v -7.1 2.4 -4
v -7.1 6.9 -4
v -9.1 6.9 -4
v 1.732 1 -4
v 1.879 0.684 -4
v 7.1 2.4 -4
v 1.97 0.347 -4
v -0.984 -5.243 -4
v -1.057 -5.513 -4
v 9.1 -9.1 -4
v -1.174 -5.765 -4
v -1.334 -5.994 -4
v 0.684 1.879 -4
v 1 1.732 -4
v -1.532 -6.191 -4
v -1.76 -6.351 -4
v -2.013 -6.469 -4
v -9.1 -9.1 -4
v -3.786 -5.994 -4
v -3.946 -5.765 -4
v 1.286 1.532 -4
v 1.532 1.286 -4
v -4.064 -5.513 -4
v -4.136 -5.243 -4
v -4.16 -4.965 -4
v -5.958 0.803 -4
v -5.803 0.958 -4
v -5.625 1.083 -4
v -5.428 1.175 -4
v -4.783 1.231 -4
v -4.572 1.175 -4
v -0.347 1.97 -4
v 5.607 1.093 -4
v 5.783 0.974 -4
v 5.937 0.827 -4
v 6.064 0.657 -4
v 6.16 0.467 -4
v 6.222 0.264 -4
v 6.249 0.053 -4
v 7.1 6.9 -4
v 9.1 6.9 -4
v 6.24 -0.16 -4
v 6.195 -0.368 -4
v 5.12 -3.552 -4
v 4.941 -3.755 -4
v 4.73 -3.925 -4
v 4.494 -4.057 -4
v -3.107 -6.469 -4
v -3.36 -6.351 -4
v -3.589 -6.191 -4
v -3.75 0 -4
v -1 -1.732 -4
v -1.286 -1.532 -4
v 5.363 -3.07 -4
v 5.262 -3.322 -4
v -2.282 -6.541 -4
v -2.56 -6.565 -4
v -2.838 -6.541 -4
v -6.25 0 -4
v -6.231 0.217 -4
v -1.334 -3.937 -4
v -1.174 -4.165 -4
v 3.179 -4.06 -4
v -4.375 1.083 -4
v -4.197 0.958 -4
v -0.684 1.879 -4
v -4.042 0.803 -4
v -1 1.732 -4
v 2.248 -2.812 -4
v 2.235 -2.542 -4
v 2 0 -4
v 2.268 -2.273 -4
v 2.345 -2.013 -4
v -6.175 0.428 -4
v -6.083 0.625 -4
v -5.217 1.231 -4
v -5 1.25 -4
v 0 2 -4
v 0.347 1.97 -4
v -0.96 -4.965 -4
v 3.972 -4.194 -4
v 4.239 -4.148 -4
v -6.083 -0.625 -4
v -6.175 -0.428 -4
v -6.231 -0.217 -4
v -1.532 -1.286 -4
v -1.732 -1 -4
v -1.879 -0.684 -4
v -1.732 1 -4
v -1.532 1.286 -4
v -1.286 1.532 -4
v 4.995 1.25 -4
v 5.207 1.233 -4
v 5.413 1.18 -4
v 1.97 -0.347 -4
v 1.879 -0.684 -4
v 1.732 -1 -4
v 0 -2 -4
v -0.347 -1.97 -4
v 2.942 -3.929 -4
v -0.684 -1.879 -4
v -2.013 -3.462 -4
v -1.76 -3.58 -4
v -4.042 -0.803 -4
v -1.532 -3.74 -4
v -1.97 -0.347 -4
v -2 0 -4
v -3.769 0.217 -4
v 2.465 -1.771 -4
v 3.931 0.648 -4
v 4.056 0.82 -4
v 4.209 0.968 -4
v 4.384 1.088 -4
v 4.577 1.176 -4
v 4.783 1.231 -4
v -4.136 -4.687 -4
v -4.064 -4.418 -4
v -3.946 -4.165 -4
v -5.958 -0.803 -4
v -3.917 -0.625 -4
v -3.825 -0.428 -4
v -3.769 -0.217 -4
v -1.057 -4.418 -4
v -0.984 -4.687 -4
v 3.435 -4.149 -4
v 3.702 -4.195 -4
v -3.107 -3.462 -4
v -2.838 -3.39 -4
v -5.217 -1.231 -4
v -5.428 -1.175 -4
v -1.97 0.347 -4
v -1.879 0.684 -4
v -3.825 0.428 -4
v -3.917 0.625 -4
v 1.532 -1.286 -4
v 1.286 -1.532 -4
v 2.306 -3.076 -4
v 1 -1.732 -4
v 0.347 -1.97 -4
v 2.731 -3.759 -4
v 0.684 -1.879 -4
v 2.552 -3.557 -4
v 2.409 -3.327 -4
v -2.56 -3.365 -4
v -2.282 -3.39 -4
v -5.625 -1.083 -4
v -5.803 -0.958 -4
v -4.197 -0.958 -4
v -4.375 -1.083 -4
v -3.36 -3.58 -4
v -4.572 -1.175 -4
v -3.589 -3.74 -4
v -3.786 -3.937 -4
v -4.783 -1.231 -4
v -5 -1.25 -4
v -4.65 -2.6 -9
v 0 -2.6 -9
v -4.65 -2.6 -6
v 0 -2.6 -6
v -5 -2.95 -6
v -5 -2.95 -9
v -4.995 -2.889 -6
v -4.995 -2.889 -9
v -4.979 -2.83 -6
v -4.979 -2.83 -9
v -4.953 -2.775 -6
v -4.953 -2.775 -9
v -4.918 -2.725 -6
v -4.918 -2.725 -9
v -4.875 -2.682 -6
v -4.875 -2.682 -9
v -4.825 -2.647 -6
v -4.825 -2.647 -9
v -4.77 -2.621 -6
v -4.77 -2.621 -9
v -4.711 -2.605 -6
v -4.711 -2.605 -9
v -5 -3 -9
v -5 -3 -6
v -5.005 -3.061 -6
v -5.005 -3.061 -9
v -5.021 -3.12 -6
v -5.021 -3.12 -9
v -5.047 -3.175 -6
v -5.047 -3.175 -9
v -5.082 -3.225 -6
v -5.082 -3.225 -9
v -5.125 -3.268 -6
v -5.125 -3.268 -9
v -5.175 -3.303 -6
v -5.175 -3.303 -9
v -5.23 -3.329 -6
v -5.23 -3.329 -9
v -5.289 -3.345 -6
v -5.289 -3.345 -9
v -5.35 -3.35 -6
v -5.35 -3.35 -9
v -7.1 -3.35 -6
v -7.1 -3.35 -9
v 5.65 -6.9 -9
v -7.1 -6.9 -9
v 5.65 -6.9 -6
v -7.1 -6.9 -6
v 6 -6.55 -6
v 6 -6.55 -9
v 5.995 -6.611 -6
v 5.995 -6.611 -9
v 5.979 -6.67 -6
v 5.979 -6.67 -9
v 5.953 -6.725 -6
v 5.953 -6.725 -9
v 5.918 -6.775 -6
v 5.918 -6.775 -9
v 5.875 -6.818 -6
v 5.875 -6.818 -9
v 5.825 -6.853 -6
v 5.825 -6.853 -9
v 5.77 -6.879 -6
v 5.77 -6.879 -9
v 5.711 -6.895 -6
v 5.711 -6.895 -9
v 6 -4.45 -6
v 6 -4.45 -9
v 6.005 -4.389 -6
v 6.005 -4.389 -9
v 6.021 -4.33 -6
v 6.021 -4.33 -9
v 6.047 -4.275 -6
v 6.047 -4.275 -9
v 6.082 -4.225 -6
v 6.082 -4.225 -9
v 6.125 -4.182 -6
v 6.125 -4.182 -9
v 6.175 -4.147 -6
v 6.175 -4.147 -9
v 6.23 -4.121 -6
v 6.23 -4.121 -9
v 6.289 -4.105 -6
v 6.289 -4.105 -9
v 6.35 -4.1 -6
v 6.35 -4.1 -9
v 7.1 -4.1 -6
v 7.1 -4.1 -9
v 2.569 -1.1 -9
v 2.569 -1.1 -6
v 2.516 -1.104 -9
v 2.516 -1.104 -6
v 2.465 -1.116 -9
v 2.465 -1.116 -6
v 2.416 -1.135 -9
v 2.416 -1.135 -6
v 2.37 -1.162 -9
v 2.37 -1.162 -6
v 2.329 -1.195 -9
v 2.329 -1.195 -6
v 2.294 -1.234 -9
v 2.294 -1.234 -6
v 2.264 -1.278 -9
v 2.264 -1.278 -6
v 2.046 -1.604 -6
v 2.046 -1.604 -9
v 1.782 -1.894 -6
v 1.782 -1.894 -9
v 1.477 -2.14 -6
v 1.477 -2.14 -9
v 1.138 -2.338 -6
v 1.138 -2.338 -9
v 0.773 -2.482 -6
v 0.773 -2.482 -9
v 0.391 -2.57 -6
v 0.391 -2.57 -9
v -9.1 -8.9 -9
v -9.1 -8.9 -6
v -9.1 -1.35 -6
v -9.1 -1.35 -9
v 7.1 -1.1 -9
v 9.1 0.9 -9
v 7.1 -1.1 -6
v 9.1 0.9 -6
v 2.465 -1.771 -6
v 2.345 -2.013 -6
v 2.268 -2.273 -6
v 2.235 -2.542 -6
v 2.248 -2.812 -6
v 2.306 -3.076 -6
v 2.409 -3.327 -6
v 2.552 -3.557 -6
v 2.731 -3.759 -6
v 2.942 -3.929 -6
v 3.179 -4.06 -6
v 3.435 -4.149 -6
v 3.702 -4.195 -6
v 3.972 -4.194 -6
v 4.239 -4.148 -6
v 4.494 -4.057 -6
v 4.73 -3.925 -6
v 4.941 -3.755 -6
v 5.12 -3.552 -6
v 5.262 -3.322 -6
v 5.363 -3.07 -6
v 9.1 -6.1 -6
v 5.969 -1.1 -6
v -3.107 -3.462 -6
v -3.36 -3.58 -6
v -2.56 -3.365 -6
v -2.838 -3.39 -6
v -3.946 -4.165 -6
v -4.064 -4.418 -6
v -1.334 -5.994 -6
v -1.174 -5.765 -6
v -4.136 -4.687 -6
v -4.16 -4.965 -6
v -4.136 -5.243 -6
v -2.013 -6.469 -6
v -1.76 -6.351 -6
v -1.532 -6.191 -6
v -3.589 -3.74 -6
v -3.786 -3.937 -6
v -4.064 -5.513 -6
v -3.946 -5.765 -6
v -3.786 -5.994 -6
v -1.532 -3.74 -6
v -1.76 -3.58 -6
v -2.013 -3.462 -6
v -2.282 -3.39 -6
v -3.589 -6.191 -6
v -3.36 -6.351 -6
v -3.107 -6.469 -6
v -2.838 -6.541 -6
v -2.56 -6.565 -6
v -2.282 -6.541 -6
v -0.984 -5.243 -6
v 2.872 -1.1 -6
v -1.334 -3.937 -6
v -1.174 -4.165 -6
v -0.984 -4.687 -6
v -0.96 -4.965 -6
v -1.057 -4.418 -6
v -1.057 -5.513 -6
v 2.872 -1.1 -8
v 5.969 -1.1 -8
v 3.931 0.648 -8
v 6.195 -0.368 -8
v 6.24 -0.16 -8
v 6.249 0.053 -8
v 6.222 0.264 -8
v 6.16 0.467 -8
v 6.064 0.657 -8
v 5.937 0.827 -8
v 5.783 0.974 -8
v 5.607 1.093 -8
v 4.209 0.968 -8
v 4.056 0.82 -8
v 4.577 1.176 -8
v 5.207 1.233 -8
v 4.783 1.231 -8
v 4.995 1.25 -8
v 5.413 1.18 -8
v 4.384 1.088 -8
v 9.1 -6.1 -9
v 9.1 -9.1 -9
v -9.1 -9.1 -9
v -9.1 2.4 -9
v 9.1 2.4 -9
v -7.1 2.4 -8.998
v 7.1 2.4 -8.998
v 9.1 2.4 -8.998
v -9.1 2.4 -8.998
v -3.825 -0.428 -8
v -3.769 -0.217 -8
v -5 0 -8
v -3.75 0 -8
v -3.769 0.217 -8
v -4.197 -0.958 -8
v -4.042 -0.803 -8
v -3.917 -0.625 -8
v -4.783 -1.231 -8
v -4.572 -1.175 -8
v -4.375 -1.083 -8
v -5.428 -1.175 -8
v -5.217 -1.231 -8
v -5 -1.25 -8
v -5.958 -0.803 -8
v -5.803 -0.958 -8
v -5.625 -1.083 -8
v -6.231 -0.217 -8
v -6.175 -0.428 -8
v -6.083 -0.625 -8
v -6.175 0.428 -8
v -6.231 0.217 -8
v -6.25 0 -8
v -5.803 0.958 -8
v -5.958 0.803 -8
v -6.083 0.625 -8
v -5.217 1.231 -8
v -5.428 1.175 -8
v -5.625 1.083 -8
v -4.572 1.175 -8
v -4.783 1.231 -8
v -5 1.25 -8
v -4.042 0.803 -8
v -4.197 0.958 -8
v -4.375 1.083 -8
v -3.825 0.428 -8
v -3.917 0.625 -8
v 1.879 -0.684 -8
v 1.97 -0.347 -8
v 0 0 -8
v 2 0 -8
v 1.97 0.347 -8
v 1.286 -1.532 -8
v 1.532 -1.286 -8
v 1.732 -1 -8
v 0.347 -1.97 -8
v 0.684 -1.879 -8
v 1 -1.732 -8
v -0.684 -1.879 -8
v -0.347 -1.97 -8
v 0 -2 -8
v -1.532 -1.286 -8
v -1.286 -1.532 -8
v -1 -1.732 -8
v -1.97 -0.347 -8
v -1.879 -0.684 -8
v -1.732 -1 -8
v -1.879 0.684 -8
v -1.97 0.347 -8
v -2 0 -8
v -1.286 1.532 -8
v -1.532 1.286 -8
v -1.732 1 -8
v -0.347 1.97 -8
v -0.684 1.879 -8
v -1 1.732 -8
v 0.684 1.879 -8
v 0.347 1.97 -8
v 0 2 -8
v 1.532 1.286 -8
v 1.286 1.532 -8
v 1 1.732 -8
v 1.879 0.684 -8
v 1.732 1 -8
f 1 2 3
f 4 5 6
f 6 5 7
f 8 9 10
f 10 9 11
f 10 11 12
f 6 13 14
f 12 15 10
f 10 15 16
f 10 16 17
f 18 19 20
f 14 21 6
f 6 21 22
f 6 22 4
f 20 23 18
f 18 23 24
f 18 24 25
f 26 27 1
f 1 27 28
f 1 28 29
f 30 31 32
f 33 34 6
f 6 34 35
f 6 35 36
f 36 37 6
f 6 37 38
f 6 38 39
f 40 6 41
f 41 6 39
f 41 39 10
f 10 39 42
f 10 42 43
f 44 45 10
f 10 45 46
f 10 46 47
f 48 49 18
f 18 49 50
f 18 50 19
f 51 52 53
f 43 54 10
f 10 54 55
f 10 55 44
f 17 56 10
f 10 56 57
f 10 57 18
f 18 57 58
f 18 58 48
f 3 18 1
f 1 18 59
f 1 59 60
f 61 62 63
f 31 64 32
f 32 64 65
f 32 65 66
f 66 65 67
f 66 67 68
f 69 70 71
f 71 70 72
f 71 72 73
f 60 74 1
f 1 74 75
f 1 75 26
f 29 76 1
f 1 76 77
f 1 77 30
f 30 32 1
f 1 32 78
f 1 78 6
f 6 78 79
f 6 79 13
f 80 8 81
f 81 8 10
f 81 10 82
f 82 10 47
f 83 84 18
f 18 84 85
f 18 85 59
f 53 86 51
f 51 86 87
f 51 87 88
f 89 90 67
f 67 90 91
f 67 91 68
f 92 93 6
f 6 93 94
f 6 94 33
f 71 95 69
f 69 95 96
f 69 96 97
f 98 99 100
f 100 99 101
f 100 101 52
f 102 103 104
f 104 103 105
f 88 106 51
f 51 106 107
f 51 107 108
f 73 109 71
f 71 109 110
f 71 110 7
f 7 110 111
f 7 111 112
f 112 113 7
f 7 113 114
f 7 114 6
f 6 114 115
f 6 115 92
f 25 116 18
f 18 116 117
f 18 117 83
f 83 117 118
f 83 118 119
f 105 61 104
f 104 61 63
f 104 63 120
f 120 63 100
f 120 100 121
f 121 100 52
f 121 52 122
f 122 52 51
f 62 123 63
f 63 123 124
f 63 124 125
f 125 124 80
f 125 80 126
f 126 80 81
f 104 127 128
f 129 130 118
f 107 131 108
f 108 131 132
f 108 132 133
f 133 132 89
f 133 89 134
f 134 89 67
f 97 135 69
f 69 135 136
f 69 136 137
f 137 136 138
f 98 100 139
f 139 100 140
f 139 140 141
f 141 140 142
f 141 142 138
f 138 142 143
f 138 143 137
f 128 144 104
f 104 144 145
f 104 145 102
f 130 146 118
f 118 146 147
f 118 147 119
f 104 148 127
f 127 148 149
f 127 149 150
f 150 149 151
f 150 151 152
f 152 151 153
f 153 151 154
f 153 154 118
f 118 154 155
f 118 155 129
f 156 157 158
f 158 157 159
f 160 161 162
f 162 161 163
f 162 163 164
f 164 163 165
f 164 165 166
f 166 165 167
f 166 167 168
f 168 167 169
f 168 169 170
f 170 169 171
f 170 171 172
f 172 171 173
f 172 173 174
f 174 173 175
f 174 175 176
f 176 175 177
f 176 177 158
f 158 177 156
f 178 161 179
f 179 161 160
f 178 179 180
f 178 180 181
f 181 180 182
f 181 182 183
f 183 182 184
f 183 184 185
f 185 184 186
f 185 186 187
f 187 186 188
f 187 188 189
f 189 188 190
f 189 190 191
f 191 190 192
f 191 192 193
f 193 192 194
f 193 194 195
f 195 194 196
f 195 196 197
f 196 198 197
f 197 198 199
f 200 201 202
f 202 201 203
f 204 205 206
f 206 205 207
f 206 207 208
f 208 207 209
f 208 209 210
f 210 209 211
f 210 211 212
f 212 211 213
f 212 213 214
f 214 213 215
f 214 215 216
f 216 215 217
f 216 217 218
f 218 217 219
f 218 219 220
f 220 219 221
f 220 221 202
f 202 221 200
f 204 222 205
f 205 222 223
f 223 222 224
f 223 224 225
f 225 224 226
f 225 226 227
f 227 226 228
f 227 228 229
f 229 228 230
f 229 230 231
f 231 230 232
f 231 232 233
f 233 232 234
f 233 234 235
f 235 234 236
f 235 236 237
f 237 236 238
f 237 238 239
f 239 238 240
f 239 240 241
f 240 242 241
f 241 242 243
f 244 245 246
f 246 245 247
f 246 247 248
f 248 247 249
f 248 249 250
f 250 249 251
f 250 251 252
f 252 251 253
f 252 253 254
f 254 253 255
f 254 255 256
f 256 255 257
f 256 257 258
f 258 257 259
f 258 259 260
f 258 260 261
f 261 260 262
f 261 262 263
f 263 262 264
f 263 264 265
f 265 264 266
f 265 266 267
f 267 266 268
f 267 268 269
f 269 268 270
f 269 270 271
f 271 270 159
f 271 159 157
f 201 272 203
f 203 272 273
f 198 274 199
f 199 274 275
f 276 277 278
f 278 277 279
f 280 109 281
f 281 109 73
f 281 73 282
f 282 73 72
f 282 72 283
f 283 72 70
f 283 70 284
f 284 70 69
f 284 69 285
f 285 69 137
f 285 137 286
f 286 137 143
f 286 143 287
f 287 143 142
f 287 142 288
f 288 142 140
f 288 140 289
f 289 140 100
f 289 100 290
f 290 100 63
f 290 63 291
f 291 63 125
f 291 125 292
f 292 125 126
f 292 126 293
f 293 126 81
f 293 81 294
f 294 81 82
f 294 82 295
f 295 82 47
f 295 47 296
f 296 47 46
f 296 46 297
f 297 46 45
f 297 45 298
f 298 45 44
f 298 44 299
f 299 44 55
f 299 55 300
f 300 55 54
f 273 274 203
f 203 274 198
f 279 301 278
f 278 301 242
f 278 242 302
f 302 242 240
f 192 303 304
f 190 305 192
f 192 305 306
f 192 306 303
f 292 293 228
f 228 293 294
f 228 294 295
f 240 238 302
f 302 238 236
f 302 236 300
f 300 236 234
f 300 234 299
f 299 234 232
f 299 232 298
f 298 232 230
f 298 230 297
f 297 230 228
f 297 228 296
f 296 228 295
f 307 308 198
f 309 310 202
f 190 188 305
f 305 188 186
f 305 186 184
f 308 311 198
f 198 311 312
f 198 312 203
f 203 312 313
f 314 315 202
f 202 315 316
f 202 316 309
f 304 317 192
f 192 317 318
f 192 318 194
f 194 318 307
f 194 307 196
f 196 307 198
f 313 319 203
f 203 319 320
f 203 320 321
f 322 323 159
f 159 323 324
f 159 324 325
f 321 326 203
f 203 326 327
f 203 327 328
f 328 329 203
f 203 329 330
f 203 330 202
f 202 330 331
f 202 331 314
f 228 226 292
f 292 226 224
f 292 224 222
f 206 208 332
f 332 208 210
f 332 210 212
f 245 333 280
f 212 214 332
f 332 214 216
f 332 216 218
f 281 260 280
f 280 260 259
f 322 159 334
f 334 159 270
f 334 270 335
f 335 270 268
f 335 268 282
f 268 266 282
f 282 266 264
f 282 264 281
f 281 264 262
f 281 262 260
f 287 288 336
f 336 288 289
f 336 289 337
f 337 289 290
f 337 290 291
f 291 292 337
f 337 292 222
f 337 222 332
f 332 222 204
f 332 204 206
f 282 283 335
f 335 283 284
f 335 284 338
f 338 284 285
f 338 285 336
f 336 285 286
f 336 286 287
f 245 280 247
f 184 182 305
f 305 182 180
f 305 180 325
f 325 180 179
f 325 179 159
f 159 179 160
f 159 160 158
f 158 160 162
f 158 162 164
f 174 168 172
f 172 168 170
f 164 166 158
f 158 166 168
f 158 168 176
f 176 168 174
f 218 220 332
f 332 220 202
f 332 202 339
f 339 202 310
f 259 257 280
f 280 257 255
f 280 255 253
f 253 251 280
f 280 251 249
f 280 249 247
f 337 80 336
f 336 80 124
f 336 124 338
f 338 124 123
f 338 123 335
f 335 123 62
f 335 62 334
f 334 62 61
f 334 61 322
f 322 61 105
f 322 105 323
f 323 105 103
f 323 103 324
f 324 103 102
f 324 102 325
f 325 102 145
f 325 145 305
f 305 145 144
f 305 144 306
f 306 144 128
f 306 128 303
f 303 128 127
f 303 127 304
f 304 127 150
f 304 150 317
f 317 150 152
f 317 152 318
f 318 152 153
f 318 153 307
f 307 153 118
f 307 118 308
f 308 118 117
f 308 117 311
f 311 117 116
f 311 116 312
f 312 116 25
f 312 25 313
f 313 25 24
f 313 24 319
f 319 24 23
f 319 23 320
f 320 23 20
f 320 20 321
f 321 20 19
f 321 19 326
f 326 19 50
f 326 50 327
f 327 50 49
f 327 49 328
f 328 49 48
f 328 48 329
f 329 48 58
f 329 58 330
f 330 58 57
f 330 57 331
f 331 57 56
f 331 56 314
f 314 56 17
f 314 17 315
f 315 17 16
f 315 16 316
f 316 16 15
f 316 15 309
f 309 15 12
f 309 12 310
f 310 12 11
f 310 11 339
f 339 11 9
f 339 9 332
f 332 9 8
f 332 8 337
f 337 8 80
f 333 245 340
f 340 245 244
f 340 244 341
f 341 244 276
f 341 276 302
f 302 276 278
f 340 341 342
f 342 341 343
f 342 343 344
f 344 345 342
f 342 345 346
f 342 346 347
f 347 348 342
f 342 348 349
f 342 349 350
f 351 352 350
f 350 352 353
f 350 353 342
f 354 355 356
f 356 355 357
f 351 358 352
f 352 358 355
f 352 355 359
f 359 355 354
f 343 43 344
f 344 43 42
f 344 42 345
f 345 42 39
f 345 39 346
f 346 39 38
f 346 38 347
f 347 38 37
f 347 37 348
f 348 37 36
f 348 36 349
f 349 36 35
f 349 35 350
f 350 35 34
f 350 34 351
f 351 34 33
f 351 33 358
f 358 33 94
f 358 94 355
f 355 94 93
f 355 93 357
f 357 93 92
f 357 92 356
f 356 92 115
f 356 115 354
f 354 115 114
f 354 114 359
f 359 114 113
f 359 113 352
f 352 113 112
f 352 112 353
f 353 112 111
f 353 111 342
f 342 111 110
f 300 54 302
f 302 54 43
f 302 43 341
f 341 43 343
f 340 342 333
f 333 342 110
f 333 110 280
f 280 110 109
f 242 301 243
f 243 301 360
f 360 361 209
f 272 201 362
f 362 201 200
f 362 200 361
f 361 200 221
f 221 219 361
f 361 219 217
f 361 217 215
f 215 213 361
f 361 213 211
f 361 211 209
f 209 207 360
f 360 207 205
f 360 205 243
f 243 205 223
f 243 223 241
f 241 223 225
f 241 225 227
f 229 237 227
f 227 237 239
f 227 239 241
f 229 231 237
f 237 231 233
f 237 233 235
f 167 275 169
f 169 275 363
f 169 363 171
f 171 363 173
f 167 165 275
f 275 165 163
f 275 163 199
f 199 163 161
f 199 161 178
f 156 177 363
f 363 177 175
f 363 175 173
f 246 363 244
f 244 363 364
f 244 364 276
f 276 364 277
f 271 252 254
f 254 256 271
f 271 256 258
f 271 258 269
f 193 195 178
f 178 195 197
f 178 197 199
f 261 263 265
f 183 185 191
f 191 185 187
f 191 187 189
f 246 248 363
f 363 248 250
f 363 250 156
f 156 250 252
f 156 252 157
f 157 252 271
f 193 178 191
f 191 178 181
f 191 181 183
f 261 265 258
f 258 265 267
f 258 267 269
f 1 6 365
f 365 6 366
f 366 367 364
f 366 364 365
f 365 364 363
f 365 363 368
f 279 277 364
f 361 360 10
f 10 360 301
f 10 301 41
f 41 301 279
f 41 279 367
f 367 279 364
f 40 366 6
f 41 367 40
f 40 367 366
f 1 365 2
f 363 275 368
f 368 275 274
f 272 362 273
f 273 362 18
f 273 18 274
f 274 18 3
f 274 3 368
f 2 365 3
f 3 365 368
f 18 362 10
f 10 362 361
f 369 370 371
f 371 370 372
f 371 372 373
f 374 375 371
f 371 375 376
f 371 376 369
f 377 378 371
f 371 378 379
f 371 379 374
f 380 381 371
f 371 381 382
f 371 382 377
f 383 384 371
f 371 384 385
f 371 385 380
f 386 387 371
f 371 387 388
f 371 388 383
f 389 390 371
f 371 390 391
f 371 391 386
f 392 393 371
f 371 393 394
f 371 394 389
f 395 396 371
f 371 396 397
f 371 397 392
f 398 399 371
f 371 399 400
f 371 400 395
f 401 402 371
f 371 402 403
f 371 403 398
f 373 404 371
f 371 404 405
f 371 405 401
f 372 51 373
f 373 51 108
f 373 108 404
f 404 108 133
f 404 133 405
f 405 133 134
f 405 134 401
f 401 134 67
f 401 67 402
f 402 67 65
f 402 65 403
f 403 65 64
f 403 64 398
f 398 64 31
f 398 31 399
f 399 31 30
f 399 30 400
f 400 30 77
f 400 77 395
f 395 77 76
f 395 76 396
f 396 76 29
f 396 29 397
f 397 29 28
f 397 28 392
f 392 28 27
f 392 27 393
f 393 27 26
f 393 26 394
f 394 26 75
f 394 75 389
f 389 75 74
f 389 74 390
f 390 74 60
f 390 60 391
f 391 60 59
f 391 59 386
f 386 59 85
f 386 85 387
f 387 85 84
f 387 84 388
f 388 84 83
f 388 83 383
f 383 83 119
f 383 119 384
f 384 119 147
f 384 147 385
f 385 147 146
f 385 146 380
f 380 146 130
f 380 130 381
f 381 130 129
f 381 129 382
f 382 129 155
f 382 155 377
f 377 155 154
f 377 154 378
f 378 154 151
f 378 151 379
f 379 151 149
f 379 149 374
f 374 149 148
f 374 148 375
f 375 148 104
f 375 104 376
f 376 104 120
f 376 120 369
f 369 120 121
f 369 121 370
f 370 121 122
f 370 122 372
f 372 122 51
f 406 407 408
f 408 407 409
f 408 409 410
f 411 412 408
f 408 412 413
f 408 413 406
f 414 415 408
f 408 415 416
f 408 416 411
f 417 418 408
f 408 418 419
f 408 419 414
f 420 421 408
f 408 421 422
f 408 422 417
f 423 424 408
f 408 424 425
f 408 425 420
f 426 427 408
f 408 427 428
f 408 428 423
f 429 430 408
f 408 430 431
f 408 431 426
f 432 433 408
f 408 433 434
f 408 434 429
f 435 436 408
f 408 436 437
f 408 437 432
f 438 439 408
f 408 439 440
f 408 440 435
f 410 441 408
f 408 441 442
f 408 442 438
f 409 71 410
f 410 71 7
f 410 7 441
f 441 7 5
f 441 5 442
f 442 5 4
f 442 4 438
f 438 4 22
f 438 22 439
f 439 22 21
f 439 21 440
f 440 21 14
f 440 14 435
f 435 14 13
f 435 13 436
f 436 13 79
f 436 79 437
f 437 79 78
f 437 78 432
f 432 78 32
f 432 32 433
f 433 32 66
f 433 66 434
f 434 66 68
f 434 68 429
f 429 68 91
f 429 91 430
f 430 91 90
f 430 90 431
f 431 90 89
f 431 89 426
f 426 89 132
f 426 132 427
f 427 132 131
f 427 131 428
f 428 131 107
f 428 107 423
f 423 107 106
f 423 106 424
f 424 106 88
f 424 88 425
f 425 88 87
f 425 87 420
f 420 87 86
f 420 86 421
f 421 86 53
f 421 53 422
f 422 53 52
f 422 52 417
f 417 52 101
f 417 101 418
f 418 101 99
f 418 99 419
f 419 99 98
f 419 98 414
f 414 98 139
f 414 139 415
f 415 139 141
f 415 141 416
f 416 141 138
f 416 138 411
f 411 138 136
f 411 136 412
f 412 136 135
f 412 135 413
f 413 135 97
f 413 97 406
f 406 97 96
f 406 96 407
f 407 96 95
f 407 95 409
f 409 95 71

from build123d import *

# Parameters (mm, degrees)
OUTER_FRAME_EXTRUDE_DEPTH      = 4
OUTER_FRAME_EXTRUDE_DEPTH_BACK = 2
OUTSIDE_FRAME_W                = 18.2
OUTSIDE_FRAME_H                = 18.2
OUTSIDE_FRAME_W_2              = 14.2
OUTSIDE_FRAME_H_2              = 14.2
HOTSWAP_BASE_W                 = 18.2
HOTSWAP_BASE_H                 = 11.5
HOTSWAP_BASE_BLOCK_DEPTH       = 5
CUT_EXTRUDE4_DEPTH             = 16.704139582
CUT_EXTRUDE4_DEPTH_BACK        = 16.704139582
SKETCH1_W                      = 2
SKETCH1_H                      = 6.7
CUT_EXTRUDE1_DEPTH             = 4
SWITCH_PIN_HOLES_R             = 2
SWITCH_PIN_HOLES_R_2           = 1.25
SWITCH_HOLES_DEPTH             = 4
CUT_EXTRUDE3_REACH             = 17.704
HOTSWAP_HOLES_R                = 1.6
CHAMFER1_SIZE                  = 2
CHAMFER2_SIZE                  = 4.5
CHAMFER2_SIZE2                 = 4.997756317
FILLET1_R                      = 0.35


with BuildPart() as part:
    # Outside Frame → Outer Frame Extrude (new, two sides: drawn at the far end of the back side and taken through both)
    with BuildSketch(Plane.XY.offset(-4).offset(-OUTER_FRAME_EXTRUDE_DEPTH_BACK)):
        Rectangle(OUTSIDE_FRAME_W, OUTSIDE_FRAME_H)
        Rectangle(OUTSIDE_FRAME_W_2, OUTSIDE_FRAME_H_2, mode=Mode.SUBTRACT)
    extrude(amount=OUTER_FRAME_EXTRUDE_DEPTH + OUTER_FRAME_EXTRUDE_DEPTH_BACK)

    # Hotswap Base → Hotswap Base Block (add)
    with BuildSketch(Plane.XY.offset(-4)):
        with Locations((0, -3.35)):
            Rectangle(HOTSWAP_BASE_W, HOTSWAP_BASE_H)
    extrude(amount=-HOTSWAP_BASE_BLOCK_DEPTH)

    # Sketch1 → Cut-Extrude4 (cut, two sides: drawn at the far end of the back side and taken through both)
    with BuildSketch(Plane(origin=(0, 0, 0), x_dir=(0, 0, -1), z_dir=(1, 0, 0)).offset(-CUT_EXTRUDE4_DEPTH_BACK)):
        with Locations((5, 5.75)):
            Rectangle(SKETCH1_W, SKETCH1_H)
    extrude(amount=CUT_EXTRUDE4_DEPTH + CUT_EXTRUDE4_DEPTH_BACK, mode=Mode.SUBTRACT)

    # Hotswap Well → Cut-Extrude1 (cut)
    with BuildSketch(Plane(origin=(0, 0, -6), x_dir=(-1, 0, 0), z_dir=(0, 0, -1))):
        with BuildLine():
            Line((-10, -1.1), (-2.355843798, -1.1))
            ThreePointArc((-2.355843798, -1.1), (-1.396424004, -2.19317122), (0, -2.6))
            Line((0, -2.6), (5, -2.6))
            Line((5, -2.6), (5, -3.35))
            Line((5, -3.35), (10, -3.35))
            Line((10, -3.35), (10, -6.9))
            Line((10, -6.9), (-6, -6.9))
            Line((-6, -6.9), (-6, -4.1))
            Line((-6, -4.1), (-10, -4.1))
            Line((-10, -4.1), (-10, -1.1))
        make_face()
    extrude(amount=CUT_EXTRUDE1_DEPTH, mode=Mode.SUBTRACT)

    # Switch Pin Holes → Switch Holes (cut)
    with BuildSketch(Plane.XY.offset(-4)):
        Circle(SWITCH_PIN_HOLES_R)
        with Locations((-5, 0)):
            Circle(SWITCH_PIN_HOLES_R_2)
        with Locations((5, 0)):
            Circle(SWITCH_PIN_HOLES_R_2)
    extrude(amount=-SWITCH_HOLES_DEPTH, mode=Mode.SUBTRACT)

    # Cut-Extrude3: up to this face of the body (flat: up to its plane)
    cut_extrude3_end = Plane(part.part.faces().sort_by_distance((5, 0.029137252, -8))[0])
    # Hotswap Holes → Cut-Extrude3 (cut, up to the picked face)
    with BuildSketch(Plane.XY, mode=Mode.PRIVATE) as cut_extrude3_sk1:
        with Locations((-2.560136595, -4.965291588)):
            Circle(HOTSWAP_HOLES_R)
    cut_extrude3_tool1 = split(extrude(cut_extrude3_sk1.sketch, amount=-CUT_EXTRUDE3_REACH, mode=Mode.PRIVATE), bisect_by=cut_extrude3_end, keep=Keep.BOTH, mode=Mode.PRIVATE)
    # Hotswap Holes → Cut-Extrude3 (cut, up to the picked face)
    with BuildSketch(Plane.XY, mode=Mode.PRIVATE) as cut_extrude3_sk2:
        with BuildLine():
            Line((3.930924016, 0.647747281), (2.46548889, -1.77088348))
            ThreePointArc((2.46548889, -1.77088348), (3.179147124, -4.059894044), (5.3631684, -3.070485887))
            Line((5.3631684, -3.070485887), (6.194736133, -0.367567099))
            ThreePointArc((6.194736133, -0.367567099), (5.511530489, 1.140542222), (3.930924016, 0.647747281))
        make_face()
    cut_extrude3_tool2 = split(extrude(cut_extrude3_sk2.sketch, amount=-CUT_EXTRUDE3_REACH, mode=Mode.PRIVATE), bisect_by=cut_extrude3_end, keep=Keep.BOTH, mode=Mode.PRIVATE)
    add(cut_extrude3_tool1.solids().sort_by(Axis((-2.560137, -4.965292, 0), (0, 0, -1)))[0], mode=Mode.SUBTRACT)
    add(cut_extrude3_tool2.solids().sort_by(Axis((4.301523, -1.557372, 0), (0, 0, -1)))[0], mode=Mode.SUBTRACT)

    # Chamfer1
    chamfer1_edges = [part.edges().sort_by_distance(p)[0] for p in [
        (9.1, -4.1, -7.5),
        (-9.1, -6.9, -7.5),
        (-9.1, -3.35, -7.5),
        (9.1, -1.1, -7.5),
    ]]
    chamfer(chamfer1_edges, length=CHAMFER1_SIZE)

    # Chamfer2
    chamfer2_edges = [part.edges().sort_by_distance(p)[0] for p in [
        (-8.1, 2.4, -4),
        (8.1, 2.4, -4),
    ]]
    chamfer2_side = [part.faces().sort_by_distance(p)[0] for p in [
        (8.1, 2.593940713, -4),
    ]]
    chamfer(chamfer2_edges, length=CHAMFER2_SIZE, length2=CHAMFER2_SIZE2, reference=chamfer2_side[0])

    # Fillet1
    fillet1_edges = [part.edges().sort_by_distance(p)[0] for p in [
        (6, -4.1, -7.5),
        (-5, -3.35, -7.5),
        (-5, -2.6, -7.5),
        (6, -6.9, -7.5),
        (2.355843798, -1.1, -7.5),
    ]]
    fillet(fillet1_edges, radius=FILLET1_R)

    # Split1
    split(bisect_by=Plane.XY.offset(-4), keep=Keep.BOTTOM)


solid = part.part
